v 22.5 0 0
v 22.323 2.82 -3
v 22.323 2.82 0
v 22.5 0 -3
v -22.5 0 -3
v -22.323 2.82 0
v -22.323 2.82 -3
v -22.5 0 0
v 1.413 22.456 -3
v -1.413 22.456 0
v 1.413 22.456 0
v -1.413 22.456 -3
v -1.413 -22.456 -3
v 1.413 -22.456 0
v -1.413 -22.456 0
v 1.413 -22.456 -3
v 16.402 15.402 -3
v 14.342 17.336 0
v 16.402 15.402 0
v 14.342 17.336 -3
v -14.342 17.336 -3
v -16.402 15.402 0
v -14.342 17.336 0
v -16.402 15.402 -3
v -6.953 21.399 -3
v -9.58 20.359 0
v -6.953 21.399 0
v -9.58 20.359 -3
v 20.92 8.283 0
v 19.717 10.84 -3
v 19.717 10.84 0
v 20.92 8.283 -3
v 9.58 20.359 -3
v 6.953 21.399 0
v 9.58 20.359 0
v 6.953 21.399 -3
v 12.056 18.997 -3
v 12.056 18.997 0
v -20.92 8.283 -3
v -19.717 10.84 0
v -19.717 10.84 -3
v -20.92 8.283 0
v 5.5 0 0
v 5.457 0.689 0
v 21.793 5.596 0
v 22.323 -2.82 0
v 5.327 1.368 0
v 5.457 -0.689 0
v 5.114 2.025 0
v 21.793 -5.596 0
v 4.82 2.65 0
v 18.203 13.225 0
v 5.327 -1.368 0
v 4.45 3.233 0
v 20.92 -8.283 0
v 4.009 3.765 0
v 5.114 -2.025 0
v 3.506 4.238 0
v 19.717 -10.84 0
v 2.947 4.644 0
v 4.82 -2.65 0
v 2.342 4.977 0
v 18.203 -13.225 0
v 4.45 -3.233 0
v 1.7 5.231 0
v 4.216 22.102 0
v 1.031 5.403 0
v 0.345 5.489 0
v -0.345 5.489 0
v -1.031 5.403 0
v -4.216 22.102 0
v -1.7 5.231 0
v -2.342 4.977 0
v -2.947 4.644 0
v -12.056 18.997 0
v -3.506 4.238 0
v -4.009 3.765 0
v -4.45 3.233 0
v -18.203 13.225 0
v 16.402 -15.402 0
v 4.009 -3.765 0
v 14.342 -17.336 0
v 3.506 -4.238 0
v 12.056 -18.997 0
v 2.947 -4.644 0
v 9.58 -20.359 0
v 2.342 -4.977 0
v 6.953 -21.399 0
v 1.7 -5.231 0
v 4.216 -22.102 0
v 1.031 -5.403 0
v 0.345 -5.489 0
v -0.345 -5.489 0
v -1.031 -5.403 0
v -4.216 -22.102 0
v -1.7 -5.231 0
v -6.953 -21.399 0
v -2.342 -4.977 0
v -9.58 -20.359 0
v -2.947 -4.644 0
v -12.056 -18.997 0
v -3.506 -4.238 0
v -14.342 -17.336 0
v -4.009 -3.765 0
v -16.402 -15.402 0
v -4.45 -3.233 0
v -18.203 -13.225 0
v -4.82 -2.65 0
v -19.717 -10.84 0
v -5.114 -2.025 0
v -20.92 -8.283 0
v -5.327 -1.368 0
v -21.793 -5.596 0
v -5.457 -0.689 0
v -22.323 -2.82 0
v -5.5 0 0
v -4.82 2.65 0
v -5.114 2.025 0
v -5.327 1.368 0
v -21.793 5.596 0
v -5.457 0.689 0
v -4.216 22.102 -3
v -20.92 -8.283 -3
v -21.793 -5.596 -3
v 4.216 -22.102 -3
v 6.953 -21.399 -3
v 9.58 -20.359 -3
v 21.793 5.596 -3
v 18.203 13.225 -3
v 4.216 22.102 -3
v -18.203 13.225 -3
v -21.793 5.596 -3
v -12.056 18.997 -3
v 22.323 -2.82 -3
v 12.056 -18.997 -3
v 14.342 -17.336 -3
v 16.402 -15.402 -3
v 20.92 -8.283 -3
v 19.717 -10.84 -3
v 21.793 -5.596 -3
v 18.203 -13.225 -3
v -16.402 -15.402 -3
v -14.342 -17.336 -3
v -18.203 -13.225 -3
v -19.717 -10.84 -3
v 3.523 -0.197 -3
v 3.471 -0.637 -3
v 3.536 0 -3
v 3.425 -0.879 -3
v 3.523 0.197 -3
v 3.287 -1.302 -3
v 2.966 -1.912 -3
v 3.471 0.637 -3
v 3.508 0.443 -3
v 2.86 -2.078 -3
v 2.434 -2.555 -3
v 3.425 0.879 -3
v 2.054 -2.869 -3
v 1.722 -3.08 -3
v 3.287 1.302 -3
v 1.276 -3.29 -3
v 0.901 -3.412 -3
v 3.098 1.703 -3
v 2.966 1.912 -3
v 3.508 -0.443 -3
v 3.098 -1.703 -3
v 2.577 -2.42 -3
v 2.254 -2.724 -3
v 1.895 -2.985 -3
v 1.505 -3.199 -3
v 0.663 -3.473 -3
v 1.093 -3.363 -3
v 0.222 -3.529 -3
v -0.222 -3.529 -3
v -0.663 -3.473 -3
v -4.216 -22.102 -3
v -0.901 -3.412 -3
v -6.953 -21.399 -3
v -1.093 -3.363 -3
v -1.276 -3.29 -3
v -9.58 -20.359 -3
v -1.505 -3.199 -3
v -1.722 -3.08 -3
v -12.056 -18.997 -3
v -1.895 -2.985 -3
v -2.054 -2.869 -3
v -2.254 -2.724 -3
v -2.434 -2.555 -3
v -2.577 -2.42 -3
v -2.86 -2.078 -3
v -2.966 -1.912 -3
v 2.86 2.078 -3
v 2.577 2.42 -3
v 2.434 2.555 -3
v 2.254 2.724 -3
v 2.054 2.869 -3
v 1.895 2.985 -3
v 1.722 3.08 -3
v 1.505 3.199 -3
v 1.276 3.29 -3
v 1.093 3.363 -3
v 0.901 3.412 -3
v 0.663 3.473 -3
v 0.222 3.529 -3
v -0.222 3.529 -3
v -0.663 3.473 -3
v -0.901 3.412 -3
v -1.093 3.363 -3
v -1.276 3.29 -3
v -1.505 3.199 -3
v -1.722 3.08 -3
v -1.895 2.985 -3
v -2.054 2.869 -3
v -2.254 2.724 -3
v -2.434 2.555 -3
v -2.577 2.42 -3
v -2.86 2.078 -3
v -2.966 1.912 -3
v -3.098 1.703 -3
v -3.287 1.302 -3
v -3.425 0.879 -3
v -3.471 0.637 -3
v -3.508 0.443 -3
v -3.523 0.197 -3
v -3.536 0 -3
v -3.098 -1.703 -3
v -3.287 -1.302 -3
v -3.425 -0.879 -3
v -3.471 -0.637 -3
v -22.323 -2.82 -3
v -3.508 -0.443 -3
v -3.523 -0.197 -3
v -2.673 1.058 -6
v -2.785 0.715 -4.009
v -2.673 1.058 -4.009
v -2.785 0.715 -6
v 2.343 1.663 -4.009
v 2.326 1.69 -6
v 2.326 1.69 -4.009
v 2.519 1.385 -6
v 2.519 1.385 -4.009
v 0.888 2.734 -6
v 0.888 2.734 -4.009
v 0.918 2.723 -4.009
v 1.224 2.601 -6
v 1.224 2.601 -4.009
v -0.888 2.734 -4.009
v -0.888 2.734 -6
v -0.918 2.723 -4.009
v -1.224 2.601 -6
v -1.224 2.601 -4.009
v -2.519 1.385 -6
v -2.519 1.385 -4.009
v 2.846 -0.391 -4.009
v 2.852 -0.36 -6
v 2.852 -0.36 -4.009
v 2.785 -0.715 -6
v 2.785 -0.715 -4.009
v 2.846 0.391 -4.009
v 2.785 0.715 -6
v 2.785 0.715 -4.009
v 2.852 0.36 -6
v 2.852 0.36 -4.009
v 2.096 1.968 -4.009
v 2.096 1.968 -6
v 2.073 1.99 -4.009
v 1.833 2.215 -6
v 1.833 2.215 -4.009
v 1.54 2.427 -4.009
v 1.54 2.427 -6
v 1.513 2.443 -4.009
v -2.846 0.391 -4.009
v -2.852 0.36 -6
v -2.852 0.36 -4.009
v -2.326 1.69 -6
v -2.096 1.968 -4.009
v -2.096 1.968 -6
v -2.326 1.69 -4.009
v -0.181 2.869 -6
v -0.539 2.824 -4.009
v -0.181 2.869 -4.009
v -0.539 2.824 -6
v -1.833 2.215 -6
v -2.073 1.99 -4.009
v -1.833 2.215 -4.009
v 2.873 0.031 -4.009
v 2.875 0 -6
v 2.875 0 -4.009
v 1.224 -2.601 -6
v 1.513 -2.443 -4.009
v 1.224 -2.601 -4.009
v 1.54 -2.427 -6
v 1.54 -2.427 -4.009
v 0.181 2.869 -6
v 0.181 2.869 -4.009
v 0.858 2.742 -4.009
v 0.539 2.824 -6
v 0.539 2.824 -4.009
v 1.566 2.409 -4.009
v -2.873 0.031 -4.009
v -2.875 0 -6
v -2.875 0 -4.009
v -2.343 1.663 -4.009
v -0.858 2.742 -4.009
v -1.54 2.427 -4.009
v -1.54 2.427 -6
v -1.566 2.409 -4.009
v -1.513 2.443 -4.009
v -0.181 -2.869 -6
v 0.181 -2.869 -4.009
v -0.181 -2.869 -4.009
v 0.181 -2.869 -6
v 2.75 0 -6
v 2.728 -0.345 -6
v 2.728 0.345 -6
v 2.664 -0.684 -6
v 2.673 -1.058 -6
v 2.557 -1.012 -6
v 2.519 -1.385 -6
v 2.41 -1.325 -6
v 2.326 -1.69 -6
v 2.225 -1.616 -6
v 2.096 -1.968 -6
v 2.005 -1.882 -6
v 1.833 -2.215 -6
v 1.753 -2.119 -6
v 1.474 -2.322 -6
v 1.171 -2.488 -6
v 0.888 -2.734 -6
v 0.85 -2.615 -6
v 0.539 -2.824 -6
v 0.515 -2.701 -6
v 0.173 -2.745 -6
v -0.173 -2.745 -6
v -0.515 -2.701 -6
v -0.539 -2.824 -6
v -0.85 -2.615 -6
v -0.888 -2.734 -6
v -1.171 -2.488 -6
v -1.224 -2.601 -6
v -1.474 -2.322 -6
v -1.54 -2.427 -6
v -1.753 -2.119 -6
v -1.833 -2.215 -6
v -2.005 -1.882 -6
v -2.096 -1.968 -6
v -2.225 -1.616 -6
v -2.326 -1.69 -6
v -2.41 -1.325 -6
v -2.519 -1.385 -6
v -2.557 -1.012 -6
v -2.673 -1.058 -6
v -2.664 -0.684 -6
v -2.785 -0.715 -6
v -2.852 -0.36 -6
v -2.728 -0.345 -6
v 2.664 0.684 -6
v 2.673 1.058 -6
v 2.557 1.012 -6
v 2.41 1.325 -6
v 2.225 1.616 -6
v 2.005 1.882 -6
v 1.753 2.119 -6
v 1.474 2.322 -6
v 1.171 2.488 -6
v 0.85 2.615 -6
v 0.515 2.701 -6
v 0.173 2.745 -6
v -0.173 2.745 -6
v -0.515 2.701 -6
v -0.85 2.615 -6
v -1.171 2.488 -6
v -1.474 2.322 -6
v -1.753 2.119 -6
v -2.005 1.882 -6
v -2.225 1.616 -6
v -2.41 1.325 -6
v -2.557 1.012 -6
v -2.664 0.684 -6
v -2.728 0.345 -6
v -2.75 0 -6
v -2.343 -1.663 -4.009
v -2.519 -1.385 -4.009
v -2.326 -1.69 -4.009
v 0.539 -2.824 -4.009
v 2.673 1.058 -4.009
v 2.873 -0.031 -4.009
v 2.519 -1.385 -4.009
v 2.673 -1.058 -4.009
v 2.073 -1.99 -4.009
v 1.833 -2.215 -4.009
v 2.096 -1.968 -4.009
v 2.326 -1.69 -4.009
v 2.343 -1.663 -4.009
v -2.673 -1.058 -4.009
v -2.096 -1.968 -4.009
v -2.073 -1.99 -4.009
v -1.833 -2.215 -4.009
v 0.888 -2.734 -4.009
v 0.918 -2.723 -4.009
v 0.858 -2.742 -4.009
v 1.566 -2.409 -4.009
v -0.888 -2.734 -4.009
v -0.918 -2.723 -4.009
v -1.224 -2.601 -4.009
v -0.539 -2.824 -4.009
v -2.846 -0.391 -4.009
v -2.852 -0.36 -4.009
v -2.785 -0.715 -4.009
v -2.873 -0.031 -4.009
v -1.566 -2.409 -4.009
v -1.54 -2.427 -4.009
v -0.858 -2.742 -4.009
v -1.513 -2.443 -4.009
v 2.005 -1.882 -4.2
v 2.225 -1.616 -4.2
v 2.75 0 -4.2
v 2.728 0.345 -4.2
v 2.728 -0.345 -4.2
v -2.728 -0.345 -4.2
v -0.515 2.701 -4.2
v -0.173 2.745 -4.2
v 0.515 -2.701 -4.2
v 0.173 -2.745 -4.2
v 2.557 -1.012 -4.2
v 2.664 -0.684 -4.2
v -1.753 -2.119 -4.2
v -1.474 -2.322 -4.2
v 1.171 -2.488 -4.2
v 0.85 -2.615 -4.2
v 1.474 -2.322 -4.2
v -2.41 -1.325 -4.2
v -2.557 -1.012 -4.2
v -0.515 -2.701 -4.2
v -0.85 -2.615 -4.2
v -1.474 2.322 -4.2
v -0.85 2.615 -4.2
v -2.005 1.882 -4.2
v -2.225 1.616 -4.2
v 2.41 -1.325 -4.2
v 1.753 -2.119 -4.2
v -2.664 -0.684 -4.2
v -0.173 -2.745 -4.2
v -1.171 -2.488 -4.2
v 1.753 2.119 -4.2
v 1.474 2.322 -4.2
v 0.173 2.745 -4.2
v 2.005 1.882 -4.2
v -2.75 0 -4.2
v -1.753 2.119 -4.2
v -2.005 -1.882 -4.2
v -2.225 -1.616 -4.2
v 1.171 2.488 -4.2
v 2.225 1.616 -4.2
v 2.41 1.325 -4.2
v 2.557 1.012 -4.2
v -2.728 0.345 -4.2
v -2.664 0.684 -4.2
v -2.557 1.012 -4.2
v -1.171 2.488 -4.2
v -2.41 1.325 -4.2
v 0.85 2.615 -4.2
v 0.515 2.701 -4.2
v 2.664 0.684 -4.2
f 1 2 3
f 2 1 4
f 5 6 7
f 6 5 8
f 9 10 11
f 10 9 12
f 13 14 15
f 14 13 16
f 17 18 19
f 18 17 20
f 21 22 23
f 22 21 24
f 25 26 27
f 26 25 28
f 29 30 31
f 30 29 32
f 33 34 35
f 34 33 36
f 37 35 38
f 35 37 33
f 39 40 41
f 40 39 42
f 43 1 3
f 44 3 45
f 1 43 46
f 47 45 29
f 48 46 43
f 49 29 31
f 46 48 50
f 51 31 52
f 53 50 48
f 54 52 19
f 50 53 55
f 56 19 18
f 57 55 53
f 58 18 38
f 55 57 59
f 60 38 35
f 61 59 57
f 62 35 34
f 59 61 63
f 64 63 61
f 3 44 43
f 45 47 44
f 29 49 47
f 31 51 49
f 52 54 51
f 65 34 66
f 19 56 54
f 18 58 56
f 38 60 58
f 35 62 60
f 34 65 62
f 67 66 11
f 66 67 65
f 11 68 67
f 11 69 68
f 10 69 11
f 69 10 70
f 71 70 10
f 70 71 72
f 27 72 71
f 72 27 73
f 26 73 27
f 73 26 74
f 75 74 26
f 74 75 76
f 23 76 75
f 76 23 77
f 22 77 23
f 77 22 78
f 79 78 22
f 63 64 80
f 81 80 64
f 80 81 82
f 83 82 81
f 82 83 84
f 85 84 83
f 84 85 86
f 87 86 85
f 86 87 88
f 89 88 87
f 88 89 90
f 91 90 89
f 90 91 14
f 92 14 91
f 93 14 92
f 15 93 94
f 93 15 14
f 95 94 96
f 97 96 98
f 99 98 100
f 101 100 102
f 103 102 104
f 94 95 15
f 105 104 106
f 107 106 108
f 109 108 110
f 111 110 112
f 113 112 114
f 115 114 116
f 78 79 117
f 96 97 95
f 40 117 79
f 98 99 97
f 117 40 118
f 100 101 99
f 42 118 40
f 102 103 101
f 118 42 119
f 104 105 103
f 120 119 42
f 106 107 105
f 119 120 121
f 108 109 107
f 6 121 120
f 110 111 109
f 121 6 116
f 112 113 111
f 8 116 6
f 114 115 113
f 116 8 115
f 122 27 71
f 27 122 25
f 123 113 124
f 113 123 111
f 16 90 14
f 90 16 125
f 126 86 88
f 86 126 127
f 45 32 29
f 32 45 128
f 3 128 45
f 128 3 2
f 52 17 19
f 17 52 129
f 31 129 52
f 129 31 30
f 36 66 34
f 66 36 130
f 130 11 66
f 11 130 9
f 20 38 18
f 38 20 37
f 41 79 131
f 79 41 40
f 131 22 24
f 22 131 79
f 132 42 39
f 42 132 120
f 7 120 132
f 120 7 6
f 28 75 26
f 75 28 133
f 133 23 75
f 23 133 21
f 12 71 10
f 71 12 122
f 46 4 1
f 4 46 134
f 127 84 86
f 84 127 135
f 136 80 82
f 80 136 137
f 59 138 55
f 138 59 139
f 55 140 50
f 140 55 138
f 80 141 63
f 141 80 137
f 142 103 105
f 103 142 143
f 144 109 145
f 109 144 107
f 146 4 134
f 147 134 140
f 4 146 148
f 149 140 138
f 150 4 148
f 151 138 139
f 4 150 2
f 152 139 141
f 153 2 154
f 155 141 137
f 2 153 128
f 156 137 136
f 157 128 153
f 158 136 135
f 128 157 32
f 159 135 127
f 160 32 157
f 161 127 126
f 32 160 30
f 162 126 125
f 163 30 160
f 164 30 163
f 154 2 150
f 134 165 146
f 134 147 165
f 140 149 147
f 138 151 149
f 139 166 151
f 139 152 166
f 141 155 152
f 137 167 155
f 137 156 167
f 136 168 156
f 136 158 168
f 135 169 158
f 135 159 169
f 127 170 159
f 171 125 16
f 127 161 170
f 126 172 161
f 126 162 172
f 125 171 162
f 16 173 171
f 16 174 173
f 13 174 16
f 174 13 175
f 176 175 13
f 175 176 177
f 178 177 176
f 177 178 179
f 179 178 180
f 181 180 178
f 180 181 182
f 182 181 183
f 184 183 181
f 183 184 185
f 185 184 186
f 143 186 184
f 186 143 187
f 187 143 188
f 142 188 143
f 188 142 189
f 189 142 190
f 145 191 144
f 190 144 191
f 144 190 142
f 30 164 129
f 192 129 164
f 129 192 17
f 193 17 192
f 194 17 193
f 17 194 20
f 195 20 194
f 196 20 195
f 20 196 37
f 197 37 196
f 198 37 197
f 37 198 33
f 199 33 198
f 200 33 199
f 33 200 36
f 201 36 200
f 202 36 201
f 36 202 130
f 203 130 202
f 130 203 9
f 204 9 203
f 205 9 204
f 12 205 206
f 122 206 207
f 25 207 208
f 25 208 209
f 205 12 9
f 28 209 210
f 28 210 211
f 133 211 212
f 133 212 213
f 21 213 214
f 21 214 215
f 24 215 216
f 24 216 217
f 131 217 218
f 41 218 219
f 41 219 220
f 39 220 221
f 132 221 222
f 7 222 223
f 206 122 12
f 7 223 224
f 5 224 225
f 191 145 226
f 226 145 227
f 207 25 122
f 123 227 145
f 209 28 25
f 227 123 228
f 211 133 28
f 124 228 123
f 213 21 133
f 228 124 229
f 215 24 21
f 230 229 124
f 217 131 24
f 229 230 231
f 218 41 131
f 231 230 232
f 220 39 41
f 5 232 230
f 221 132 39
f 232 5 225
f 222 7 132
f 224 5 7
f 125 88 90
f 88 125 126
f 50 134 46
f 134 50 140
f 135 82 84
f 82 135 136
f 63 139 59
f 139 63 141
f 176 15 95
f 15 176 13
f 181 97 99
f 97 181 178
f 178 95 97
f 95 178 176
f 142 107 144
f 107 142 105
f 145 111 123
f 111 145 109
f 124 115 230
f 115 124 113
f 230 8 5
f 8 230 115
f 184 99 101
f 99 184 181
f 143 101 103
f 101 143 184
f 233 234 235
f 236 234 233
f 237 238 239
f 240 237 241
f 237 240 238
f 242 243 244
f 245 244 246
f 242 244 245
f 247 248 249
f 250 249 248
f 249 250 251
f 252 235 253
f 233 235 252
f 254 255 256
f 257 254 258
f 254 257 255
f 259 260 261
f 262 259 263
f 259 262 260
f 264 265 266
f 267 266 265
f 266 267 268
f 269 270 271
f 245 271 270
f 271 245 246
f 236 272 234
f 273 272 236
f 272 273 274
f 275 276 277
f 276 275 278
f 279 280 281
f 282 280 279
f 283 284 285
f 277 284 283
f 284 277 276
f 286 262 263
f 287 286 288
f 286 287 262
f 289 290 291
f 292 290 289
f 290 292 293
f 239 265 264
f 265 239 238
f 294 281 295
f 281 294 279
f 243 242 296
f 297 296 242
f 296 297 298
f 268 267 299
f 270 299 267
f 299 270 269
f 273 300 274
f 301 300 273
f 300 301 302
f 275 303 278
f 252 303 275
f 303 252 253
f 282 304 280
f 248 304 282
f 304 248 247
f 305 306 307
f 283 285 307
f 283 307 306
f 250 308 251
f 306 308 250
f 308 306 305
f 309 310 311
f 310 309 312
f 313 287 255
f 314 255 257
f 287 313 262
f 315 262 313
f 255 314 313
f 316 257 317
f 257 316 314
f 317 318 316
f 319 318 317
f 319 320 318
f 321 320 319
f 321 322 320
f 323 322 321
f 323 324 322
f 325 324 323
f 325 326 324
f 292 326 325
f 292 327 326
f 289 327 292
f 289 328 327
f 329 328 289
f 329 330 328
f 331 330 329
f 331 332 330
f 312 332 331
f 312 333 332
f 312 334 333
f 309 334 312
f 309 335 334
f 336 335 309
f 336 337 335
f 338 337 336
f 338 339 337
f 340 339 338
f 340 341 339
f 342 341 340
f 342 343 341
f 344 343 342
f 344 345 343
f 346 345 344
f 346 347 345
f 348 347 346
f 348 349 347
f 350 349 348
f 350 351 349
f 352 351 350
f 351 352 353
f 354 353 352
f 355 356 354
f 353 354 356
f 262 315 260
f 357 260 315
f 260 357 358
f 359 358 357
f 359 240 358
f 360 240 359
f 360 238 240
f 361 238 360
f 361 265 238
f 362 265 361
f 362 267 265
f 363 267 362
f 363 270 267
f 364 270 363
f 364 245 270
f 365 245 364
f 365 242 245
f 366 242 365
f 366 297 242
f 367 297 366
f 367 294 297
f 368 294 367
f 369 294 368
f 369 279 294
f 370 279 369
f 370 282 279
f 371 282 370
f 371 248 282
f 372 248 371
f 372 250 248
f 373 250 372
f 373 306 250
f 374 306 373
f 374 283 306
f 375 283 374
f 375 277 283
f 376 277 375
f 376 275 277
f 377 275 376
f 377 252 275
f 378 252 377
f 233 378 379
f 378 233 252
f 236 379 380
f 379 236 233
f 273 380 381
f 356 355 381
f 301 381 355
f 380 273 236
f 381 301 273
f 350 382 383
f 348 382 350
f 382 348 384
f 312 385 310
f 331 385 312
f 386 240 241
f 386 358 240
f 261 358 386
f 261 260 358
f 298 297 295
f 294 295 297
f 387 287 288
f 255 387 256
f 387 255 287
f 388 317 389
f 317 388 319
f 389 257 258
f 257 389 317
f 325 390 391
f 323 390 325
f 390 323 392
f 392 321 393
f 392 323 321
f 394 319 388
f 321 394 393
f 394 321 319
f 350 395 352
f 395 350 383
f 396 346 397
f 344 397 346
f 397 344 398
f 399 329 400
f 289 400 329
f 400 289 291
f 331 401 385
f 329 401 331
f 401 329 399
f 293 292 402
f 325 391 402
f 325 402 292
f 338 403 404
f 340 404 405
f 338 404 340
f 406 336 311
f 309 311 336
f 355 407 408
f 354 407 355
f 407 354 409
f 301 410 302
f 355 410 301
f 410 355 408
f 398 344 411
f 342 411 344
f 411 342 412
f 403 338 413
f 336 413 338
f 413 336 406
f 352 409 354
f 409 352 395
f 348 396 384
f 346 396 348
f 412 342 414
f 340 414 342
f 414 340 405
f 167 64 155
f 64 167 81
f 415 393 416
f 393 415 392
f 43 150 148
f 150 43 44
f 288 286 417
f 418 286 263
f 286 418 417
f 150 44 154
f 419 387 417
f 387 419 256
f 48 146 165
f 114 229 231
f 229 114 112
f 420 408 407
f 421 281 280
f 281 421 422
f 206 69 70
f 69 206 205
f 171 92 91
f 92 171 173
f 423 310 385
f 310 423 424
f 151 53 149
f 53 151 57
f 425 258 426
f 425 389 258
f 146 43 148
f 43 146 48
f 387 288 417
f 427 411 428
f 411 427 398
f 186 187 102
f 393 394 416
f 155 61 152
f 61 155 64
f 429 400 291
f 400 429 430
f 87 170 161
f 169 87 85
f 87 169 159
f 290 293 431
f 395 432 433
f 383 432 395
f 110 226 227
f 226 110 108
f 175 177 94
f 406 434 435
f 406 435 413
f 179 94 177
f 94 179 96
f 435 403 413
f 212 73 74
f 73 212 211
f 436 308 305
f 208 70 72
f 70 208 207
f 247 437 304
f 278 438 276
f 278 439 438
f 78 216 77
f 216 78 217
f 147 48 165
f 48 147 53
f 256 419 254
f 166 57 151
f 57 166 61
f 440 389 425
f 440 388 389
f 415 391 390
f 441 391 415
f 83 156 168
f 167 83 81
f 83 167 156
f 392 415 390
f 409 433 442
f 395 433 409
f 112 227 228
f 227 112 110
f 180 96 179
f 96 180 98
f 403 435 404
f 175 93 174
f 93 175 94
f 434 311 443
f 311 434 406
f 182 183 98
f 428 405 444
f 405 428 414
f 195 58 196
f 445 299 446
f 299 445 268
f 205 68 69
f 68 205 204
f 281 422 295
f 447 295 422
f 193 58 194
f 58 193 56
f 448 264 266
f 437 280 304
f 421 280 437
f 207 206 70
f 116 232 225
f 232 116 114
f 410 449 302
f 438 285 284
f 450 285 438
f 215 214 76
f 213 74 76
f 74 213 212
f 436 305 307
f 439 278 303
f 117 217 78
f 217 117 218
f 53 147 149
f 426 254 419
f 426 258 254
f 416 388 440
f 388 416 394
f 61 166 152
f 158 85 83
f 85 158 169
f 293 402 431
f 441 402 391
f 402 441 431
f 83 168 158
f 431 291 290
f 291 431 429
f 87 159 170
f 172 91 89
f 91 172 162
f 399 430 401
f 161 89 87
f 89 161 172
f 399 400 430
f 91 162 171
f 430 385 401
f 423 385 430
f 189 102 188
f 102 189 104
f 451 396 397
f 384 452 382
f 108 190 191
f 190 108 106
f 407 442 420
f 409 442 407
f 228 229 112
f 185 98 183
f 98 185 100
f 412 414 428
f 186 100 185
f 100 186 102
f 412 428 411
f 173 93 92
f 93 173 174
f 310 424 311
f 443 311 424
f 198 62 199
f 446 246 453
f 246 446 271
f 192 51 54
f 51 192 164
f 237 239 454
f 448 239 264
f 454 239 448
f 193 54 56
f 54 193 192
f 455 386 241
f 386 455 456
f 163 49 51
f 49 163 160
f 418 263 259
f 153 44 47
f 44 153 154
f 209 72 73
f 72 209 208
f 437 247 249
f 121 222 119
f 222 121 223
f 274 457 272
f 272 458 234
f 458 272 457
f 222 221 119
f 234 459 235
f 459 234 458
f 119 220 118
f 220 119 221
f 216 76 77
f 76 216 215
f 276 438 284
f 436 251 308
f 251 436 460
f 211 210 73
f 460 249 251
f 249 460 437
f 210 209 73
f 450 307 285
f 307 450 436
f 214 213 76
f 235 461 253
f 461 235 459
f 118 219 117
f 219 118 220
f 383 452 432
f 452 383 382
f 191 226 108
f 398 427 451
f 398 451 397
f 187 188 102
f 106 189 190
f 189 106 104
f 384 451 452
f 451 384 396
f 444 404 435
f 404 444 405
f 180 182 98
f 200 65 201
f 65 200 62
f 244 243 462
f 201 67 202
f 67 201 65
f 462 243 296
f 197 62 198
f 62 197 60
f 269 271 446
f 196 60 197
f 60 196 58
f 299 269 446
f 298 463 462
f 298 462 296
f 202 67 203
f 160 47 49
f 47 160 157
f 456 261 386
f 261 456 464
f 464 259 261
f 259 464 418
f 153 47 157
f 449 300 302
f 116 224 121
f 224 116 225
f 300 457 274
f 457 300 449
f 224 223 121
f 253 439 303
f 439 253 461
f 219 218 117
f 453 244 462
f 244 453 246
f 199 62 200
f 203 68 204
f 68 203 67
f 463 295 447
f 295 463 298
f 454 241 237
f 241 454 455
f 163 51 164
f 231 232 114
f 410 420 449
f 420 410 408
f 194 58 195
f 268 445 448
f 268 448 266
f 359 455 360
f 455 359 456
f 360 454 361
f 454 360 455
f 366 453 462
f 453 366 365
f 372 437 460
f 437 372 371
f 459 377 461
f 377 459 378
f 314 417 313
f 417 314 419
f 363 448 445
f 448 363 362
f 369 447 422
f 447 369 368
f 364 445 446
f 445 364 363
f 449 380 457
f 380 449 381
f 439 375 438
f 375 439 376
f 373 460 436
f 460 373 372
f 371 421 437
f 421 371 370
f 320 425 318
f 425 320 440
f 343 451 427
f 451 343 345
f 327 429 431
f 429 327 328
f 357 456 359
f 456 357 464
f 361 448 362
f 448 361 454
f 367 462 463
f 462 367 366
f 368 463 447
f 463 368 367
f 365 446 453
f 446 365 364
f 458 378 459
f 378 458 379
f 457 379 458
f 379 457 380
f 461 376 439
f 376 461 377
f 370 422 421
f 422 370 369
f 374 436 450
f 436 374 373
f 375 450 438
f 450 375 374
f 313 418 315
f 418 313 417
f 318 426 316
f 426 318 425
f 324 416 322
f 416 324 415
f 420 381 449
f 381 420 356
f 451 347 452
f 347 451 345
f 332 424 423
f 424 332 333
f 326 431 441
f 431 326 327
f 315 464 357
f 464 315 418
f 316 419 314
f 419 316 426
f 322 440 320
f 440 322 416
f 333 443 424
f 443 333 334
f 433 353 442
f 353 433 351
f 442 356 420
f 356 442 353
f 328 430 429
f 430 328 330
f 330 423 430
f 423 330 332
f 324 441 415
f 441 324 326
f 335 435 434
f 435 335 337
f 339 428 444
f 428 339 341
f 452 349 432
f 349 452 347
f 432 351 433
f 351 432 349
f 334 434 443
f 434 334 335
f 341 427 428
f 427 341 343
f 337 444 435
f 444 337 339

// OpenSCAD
$fn = 50;


difference() {
	union() {
		translate(v = [0, 0, -3.0000000000]) {
			cylinder(h = 3, r = 22.5000000000);
		}
		#translate(v = [0, 0, -6.0000000000]) {
			cylinder(h = 6, r = 2.8750000000);
		}
	}
	union() {
		translate(v = [0, 0, 0]) {
			rotate(a = [0, 0, 0]) {
				difference() {
					union() {
						translate(v = [0, 0, -6.0000000000]) {
							cylinder(h = 6, r = 2.2500000000);
						}
						translate(v = [0, 0, -4.2000000000]) {
							cylinder(h = 4.2000000000, r1 = 2.7500000000, r2 = 5.5000000000);
						}
						translate(v = [0, 0, -6.0000000000]) {
							cylinder(h = 6, r = 2.7500000000);
						}
						translate(v = [0, 0, -6.0000000000]) {
							cylinder(h = 6, r = 2.2500000000);
						}
					}
					union();
				}
			}
		}
	}
}
